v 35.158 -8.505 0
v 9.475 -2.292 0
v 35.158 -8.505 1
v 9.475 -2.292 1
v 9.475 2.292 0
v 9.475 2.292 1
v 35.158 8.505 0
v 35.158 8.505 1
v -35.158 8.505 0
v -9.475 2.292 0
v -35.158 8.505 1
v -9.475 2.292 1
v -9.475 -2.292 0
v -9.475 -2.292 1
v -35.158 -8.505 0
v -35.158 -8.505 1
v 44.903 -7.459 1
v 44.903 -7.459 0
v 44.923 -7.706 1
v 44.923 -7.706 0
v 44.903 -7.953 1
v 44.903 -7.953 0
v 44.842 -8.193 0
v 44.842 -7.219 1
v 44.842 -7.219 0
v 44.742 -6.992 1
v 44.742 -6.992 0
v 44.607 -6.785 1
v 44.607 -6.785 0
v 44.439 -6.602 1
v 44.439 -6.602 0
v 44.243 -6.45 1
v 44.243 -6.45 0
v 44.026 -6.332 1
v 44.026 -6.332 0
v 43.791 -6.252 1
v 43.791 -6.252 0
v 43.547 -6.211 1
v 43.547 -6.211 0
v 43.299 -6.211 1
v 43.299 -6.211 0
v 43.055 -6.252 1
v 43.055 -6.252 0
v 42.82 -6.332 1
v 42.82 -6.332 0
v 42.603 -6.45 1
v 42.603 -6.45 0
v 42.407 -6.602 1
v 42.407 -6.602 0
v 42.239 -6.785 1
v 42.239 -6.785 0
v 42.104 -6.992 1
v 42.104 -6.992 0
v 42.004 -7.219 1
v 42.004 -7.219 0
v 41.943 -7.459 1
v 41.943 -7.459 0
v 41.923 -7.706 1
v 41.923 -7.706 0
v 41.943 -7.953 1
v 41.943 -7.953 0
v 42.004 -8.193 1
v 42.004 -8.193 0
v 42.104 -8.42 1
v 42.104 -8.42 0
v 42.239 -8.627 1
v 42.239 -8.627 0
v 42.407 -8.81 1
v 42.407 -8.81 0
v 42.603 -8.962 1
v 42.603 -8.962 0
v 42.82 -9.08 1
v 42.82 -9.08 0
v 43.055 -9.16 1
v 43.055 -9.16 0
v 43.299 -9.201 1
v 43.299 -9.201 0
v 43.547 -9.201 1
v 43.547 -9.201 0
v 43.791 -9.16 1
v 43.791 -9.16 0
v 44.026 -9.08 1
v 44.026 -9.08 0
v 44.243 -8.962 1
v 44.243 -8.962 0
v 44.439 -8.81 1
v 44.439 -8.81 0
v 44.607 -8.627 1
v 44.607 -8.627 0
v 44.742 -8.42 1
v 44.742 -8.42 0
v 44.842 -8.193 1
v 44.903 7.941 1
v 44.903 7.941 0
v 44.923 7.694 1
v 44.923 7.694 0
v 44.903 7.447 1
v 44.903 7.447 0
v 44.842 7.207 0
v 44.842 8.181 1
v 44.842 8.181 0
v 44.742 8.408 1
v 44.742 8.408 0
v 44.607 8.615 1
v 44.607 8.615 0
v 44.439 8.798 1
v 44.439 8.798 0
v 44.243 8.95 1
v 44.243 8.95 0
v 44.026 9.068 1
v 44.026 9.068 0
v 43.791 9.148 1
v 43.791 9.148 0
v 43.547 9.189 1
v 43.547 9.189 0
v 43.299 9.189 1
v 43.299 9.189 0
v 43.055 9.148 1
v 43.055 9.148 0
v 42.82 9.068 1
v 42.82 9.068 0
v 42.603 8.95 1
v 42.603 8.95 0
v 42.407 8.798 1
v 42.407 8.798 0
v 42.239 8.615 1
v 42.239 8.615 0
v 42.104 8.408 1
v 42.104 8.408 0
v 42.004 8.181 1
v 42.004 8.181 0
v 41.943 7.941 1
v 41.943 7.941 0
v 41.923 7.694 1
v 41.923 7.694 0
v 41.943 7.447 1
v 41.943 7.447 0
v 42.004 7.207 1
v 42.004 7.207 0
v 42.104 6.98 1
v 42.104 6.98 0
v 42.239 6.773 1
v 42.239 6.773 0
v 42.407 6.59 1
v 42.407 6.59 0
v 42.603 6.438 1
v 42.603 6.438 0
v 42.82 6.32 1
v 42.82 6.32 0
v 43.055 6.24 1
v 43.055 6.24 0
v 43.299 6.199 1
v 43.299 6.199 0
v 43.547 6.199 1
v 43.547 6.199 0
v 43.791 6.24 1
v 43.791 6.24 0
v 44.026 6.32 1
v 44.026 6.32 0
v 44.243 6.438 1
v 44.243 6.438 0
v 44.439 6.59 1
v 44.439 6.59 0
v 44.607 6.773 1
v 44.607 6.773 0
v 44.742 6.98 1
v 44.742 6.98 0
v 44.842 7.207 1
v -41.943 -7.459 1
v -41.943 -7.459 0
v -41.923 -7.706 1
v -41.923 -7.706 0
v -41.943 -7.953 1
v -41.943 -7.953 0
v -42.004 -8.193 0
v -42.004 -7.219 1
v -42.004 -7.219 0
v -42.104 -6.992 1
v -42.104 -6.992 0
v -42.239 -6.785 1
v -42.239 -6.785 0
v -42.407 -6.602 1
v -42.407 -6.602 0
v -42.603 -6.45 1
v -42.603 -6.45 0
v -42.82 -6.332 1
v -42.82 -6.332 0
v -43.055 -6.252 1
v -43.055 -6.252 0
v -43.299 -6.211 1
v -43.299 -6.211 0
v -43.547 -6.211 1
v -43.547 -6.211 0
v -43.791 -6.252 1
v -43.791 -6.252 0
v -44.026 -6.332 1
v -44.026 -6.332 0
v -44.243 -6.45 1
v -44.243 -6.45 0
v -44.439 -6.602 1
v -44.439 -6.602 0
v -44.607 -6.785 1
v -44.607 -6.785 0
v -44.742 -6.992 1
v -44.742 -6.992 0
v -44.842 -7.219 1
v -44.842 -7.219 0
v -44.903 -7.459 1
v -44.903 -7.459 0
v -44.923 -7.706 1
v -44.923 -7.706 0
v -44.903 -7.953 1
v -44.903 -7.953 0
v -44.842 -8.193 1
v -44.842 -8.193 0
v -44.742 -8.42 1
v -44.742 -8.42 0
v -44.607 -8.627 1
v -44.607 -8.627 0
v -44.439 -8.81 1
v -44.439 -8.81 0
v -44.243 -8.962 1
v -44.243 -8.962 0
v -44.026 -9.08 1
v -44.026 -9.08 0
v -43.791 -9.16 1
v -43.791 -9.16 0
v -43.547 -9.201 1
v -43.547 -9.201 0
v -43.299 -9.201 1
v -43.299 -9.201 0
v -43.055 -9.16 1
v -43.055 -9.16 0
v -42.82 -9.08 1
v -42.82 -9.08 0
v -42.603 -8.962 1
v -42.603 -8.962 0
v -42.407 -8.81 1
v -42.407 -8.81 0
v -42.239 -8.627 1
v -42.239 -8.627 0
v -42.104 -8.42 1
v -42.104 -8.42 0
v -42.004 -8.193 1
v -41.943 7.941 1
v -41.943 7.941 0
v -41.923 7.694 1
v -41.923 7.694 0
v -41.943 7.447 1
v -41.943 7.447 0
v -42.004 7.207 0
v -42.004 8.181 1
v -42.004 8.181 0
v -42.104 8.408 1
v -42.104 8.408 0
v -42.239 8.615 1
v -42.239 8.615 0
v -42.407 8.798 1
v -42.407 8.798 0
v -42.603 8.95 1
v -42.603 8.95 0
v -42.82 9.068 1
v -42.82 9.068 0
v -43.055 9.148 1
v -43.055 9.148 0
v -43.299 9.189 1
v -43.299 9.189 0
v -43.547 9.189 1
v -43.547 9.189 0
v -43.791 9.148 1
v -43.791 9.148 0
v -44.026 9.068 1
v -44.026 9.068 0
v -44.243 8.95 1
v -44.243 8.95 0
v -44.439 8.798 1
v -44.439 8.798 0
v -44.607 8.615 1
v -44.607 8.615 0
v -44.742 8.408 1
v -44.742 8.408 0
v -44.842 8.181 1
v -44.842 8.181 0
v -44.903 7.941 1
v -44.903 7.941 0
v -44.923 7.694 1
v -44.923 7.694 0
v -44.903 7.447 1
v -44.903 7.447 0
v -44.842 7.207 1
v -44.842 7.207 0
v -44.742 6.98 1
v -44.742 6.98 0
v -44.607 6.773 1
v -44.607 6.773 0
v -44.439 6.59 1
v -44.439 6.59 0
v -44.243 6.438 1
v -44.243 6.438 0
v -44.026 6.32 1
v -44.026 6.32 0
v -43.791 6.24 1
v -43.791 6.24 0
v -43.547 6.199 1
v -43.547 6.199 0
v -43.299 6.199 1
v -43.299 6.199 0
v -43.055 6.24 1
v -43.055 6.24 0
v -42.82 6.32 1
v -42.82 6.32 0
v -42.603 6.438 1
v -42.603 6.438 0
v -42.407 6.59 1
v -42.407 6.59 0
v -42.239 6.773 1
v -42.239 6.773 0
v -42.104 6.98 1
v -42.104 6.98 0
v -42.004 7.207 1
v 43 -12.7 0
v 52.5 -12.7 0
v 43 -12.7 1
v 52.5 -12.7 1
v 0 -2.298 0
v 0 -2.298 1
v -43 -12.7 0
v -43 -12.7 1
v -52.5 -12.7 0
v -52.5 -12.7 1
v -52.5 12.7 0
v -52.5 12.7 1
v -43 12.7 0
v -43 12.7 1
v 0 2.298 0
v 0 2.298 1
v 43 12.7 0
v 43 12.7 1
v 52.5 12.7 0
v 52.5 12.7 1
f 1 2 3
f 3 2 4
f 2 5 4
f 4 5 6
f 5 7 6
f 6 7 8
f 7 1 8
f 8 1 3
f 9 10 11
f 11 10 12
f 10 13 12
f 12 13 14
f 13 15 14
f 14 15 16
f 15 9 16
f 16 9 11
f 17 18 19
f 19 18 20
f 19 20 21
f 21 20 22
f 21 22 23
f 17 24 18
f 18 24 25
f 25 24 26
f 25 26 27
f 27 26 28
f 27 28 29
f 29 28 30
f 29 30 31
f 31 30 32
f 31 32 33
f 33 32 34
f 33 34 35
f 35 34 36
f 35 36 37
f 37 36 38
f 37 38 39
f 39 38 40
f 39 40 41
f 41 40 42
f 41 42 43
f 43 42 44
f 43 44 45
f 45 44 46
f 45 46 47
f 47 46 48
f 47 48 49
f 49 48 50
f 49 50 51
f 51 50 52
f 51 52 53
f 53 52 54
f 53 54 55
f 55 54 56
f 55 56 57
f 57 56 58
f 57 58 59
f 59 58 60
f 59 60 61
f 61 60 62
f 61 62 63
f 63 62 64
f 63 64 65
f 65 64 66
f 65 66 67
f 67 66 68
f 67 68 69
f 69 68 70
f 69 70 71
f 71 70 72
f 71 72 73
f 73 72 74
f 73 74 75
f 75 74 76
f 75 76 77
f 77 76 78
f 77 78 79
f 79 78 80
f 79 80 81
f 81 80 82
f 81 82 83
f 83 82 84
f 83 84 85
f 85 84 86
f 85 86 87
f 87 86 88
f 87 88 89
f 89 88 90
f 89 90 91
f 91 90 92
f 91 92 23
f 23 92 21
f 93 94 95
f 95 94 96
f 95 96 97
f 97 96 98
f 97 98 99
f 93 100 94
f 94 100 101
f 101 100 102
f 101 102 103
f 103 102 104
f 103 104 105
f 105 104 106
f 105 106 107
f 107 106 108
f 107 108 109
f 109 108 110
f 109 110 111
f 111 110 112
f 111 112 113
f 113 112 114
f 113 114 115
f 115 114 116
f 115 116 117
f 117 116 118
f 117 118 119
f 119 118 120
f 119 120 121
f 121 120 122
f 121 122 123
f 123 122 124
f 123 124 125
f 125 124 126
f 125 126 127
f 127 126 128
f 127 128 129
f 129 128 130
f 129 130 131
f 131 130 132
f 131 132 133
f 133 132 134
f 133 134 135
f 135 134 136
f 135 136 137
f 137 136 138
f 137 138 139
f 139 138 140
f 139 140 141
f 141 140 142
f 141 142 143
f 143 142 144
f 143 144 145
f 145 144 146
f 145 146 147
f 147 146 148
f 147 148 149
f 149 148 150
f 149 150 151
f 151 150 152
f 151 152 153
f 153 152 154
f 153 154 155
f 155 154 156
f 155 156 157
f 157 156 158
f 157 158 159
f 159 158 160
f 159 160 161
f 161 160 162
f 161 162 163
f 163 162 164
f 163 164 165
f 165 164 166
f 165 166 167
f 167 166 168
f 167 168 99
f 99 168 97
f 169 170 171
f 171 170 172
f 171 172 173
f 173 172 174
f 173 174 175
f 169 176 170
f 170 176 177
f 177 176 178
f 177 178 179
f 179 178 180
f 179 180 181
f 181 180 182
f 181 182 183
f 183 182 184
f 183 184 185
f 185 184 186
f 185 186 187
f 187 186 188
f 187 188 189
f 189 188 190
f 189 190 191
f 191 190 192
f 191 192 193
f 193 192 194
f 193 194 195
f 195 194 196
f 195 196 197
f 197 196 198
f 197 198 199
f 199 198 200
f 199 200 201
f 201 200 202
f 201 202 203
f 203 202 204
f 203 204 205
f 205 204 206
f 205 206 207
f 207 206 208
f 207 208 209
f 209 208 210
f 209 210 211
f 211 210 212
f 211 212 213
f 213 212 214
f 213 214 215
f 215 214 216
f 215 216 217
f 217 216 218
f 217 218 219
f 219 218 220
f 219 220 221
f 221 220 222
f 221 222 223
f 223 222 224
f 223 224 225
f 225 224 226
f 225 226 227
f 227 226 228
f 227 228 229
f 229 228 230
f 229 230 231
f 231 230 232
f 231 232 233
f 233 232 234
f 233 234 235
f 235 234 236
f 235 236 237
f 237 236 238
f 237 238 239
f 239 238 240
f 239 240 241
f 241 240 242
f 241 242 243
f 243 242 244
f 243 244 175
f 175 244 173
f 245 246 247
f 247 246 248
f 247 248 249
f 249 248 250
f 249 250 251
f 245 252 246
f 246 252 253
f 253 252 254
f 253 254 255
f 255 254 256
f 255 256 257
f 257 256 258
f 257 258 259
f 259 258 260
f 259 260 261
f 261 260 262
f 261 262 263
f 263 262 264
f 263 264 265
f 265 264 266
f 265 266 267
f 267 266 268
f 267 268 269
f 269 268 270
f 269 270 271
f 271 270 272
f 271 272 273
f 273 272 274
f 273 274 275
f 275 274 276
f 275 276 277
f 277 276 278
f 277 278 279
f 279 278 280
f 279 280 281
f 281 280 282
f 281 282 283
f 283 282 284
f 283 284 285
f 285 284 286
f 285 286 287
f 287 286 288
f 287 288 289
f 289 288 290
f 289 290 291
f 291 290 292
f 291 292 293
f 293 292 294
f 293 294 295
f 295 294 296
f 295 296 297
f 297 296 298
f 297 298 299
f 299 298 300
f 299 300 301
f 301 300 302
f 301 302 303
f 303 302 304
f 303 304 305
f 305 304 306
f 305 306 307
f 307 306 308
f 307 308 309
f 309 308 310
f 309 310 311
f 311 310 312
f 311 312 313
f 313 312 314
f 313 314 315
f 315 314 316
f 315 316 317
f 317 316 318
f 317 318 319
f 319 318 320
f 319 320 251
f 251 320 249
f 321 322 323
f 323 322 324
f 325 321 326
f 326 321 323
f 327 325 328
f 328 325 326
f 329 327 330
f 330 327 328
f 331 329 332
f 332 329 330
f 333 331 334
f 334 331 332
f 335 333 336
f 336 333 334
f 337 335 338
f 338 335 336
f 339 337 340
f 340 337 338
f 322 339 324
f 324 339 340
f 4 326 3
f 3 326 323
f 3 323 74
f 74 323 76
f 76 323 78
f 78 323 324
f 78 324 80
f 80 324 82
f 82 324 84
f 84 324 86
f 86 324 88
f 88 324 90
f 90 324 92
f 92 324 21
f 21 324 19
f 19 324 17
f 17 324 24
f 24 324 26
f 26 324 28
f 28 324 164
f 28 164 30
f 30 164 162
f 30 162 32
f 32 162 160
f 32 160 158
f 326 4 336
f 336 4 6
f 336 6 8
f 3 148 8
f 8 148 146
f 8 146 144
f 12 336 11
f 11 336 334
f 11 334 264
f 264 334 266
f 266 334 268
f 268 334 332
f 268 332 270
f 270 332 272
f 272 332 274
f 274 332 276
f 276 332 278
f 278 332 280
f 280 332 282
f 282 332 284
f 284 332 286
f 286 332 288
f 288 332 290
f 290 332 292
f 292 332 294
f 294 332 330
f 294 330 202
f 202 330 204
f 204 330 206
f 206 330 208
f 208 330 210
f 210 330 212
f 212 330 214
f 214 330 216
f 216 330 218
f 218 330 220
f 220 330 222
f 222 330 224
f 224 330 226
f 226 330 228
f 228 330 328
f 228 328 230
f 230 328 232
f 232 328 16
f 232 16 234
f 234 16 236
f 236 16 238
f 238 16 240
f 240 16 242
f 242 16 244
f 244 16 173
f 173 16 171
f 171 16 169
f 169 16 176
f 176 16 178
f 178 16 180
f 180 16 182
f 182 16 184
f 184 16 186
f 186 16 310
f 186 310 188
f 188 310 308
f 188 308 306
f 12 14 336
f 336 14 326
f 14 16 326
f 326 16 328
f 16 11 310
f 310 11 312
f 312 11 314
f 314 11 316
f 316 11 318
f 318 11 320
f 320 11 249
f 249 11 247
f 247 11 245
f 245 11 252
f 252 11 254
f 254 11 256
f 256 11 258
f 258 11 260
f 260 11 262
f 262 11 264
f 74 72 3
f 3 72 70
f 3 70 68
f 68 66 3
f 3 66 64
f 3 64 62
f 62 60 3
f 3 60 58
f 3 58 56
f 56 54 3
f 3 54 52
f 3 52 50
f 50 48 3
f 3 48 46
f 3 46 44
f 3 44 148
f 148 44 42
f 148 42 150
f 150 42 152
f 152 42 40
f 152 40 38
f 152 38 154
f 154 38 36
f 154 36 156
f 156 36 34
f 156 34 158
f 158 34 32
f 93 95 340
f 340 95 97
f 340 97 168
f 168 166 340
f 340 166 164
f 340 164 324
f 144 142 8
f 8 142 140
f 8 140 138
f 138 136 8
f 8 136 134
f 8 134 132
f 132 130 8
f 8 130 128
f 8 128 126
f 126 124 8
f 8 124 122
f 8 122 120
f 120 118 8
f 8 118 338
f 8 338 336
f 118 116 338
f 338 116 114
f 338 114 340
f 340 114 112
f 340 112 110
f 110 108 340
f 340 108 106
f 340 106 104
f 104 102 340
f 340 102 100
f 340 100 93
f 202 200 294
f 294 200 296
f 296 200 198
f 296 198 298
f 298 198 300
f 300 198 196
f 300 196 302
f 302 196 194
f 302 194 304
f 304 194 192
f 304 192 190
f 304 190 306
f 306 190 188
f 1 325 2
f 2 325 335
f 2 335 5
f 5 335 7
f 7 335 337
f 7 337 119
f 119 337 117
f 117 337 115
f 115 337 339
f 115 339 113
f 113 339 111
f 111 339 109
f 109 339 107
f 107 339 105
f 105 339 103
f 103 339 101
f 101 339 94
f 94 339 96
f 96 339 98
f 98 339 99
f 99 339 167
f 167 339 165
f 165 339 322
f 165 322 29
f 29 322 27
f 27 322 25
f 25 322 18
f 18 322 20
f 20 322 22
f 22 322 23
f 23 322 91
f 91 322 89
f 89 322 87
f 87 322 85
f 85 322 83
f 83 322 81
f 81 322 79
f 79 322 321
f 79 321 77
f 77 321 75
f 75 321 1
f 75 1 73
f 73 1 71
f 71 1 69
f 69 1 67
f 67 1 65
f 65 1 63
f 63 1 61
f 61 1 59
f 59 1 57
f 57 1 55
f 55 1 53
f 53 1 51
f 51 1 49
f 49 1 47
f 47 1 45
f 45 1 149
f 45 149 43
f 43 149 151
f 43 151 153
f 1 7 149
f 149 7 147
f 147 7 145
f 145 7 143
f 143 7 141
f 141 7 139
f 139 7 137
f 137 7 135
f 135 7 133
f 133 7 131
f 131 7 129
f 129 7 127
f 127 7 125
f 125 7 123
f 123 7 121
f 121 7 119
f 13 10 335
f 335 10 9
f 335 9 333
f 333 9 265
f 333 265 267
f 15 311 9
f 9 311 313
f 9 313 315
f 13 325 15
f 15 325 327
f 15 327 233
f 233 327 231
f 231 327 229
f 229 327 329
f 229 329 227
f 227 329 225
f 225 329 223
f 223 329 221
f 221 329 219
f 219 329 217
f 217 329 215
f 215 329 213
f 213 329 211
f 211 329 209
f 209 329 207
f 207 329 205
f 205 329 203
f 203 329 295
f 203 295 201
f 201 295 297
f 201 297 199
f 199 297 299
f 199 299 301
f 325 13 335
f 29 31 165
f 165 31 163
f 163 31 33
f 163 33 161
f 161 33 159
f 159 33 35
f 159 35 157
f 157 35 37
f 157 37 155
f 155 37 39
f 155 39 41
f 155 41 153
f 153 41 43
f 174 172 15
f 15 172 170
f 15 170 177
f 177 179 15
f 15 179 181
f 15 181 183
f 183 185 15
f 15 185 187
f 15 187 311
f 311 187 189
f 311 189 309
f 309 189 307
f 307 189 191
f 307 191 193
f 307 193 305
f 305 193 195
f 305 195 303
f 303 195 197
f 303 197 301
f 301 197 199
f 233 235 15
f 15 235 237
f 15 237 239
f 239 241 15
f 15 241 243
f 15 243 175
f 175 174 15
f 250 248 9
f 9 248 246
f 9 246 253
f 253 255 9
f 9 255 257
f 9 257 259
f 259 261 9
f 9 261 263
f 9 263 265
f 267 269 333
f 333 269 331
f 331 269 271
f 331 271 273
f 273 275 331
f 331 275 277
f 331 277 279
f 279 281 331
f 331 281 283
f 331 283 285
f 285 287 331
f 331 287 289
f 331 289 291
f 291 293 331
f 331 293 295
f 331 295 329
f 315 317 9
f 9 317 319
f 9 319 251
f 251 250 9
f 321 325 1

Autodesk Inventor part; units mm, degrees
ref_plane "YZ Plane" through (0, 0, 0) normal (1, 0, 0) x (0, 1, 0)
ref_plane "XZ Plane" through (0, 0, 0) normal (0, 1, 0) x (-1, 0, 0)
ref_plane "XY Plane" through (0, 0, 0) normal (0, 0, 1) x (1, 0, 0)
sketch "Sketch1" plane through (0, 0, 0) normal (0, 0, 1) x (1, 0, 0)
  line L0 (-52.5, -12.7) -> (-52.5, 12.7)
  line L1 (43, 12.7) -> (52.5, 12.7)
  line L2 (52.5, 12.7) -> (52.5, -12.7)
  line L3 (52.5, -12.7) -> (-52.5, 12.7) construction
  line L4 (-52.5, -12.7) -> (-43, -12.7)
  line L5 (-43, 12.7) -> (-52.5, 12.7)
  line L6 (-52.5, 12.7) -> (-52.5, -12.7)
  line L7 (52.5, -12.7) -> (43.7955, -12.7)
  line L8 (43.7955, 12.7) -> (52.5, 12.7)
  line L9 (52.5, 12.7) -> (52.5, -12.7)
  circle A0 centre (-43.423, 7.694) radius 1.5
  circle A1 centre (-43.423, -7.706) radius 1.5
  line L10 (0, 19) -> (0, -21) construction
  line L11 (52.5, -12.7) -> (52.5, 12.7)
  line L12 (52.5, -12.7) -> (43, -12.7)
  line L13 (43, 12.7) -> (52.5, 12.7)
  line L14 (52.5, 12.7) -> (52.5, -12.7)
  circle A2 centre (43.423, 7.694) radius 1.5
  circle A3 centre (43.423, -7.706) radius 1.5
  line L15 (-43, 12.7) -> (0, 2.2981)
  line L16 (0, 2.2981) -> (0, 0)
  line L17 (-52.5, 0) -> (75, 0) construction
  line L18 (-43, -12.7) -> (0, -2.2981)
  line L19 (0, -2.2981) -> (0, 0)
  line L20 (43, 12.7) -> (0, 2.2981)
  line L21 (43, -12.7) -> (0, -2.2981)
  line L22 (-35.158, 8.5049) -> (-35.158, 0)
  line L23 (-35.158, 8.5049) -> (-9.4754, 2.2921)
  line L24 (-9.4754, 0) -> (-9.4754, 2.2921)
  line L25 (52.5, 12.7) -> (-52.5, -12.7) construction
  line L26 (-35.158, -8.5049) -> (-35.158, 0)
  line L27 (-9.4754, 0) -> (-9.4754, -2.2921)
  line L28 (-35.158, -8.5049) -> (-9.4754, -2.2921)
  line L29 (35.158, 8.5049) -> (35.158, 0)
  line L30 (35.158, 8.5049) -> (9.4754, 2.2921)
  line L31 (9.4754, 0) -> (9.4754, 2.2921)
  line L32 (35.158, -8.5049) -> (35.158, 0)
  line L33 (9.4754, 0) -> (9.4754, -2.2921)
  line L34 (35.158, -8.5049) -> (9.4754, -2.2921)
  line L35 (-43.423, 7.694) -> (43.423, 7.694) construction
  line L36 (-52.5, 12.7) -> (-43, 12.7)
  line L37 (0, 2.2981) -> (-43, 12.7)
  line L38 (0, 2.2981) -> (43, 12.7)
  line L39 (43, 12.7) -> (52.5, 12.7)
  line L40 (52.5, 12.7) -> (52.5, -12.7)
  line L41 (52.5, -12.7) -> (43, -12.7)
  line L42 (43, -12.7) -> (0, -2.2981)
  line L43 (0, -2.2981) -> (-43, -12.7)
  line L44 (-43, -12.7) -> (-52.5, -12.7)
  line L45 (-52.5, -12.7) -> (-52.5, 12.7)
  dimension "d0" = 105
  dimension "d1" = 15.4
  dimension "d4" = 9.077
  dimension "d5" = 3
  dimension "d6" = 3
extrude "Extrusion1" add sketch "Sketch1" along normal blind 1
properties part number "drill guide"
